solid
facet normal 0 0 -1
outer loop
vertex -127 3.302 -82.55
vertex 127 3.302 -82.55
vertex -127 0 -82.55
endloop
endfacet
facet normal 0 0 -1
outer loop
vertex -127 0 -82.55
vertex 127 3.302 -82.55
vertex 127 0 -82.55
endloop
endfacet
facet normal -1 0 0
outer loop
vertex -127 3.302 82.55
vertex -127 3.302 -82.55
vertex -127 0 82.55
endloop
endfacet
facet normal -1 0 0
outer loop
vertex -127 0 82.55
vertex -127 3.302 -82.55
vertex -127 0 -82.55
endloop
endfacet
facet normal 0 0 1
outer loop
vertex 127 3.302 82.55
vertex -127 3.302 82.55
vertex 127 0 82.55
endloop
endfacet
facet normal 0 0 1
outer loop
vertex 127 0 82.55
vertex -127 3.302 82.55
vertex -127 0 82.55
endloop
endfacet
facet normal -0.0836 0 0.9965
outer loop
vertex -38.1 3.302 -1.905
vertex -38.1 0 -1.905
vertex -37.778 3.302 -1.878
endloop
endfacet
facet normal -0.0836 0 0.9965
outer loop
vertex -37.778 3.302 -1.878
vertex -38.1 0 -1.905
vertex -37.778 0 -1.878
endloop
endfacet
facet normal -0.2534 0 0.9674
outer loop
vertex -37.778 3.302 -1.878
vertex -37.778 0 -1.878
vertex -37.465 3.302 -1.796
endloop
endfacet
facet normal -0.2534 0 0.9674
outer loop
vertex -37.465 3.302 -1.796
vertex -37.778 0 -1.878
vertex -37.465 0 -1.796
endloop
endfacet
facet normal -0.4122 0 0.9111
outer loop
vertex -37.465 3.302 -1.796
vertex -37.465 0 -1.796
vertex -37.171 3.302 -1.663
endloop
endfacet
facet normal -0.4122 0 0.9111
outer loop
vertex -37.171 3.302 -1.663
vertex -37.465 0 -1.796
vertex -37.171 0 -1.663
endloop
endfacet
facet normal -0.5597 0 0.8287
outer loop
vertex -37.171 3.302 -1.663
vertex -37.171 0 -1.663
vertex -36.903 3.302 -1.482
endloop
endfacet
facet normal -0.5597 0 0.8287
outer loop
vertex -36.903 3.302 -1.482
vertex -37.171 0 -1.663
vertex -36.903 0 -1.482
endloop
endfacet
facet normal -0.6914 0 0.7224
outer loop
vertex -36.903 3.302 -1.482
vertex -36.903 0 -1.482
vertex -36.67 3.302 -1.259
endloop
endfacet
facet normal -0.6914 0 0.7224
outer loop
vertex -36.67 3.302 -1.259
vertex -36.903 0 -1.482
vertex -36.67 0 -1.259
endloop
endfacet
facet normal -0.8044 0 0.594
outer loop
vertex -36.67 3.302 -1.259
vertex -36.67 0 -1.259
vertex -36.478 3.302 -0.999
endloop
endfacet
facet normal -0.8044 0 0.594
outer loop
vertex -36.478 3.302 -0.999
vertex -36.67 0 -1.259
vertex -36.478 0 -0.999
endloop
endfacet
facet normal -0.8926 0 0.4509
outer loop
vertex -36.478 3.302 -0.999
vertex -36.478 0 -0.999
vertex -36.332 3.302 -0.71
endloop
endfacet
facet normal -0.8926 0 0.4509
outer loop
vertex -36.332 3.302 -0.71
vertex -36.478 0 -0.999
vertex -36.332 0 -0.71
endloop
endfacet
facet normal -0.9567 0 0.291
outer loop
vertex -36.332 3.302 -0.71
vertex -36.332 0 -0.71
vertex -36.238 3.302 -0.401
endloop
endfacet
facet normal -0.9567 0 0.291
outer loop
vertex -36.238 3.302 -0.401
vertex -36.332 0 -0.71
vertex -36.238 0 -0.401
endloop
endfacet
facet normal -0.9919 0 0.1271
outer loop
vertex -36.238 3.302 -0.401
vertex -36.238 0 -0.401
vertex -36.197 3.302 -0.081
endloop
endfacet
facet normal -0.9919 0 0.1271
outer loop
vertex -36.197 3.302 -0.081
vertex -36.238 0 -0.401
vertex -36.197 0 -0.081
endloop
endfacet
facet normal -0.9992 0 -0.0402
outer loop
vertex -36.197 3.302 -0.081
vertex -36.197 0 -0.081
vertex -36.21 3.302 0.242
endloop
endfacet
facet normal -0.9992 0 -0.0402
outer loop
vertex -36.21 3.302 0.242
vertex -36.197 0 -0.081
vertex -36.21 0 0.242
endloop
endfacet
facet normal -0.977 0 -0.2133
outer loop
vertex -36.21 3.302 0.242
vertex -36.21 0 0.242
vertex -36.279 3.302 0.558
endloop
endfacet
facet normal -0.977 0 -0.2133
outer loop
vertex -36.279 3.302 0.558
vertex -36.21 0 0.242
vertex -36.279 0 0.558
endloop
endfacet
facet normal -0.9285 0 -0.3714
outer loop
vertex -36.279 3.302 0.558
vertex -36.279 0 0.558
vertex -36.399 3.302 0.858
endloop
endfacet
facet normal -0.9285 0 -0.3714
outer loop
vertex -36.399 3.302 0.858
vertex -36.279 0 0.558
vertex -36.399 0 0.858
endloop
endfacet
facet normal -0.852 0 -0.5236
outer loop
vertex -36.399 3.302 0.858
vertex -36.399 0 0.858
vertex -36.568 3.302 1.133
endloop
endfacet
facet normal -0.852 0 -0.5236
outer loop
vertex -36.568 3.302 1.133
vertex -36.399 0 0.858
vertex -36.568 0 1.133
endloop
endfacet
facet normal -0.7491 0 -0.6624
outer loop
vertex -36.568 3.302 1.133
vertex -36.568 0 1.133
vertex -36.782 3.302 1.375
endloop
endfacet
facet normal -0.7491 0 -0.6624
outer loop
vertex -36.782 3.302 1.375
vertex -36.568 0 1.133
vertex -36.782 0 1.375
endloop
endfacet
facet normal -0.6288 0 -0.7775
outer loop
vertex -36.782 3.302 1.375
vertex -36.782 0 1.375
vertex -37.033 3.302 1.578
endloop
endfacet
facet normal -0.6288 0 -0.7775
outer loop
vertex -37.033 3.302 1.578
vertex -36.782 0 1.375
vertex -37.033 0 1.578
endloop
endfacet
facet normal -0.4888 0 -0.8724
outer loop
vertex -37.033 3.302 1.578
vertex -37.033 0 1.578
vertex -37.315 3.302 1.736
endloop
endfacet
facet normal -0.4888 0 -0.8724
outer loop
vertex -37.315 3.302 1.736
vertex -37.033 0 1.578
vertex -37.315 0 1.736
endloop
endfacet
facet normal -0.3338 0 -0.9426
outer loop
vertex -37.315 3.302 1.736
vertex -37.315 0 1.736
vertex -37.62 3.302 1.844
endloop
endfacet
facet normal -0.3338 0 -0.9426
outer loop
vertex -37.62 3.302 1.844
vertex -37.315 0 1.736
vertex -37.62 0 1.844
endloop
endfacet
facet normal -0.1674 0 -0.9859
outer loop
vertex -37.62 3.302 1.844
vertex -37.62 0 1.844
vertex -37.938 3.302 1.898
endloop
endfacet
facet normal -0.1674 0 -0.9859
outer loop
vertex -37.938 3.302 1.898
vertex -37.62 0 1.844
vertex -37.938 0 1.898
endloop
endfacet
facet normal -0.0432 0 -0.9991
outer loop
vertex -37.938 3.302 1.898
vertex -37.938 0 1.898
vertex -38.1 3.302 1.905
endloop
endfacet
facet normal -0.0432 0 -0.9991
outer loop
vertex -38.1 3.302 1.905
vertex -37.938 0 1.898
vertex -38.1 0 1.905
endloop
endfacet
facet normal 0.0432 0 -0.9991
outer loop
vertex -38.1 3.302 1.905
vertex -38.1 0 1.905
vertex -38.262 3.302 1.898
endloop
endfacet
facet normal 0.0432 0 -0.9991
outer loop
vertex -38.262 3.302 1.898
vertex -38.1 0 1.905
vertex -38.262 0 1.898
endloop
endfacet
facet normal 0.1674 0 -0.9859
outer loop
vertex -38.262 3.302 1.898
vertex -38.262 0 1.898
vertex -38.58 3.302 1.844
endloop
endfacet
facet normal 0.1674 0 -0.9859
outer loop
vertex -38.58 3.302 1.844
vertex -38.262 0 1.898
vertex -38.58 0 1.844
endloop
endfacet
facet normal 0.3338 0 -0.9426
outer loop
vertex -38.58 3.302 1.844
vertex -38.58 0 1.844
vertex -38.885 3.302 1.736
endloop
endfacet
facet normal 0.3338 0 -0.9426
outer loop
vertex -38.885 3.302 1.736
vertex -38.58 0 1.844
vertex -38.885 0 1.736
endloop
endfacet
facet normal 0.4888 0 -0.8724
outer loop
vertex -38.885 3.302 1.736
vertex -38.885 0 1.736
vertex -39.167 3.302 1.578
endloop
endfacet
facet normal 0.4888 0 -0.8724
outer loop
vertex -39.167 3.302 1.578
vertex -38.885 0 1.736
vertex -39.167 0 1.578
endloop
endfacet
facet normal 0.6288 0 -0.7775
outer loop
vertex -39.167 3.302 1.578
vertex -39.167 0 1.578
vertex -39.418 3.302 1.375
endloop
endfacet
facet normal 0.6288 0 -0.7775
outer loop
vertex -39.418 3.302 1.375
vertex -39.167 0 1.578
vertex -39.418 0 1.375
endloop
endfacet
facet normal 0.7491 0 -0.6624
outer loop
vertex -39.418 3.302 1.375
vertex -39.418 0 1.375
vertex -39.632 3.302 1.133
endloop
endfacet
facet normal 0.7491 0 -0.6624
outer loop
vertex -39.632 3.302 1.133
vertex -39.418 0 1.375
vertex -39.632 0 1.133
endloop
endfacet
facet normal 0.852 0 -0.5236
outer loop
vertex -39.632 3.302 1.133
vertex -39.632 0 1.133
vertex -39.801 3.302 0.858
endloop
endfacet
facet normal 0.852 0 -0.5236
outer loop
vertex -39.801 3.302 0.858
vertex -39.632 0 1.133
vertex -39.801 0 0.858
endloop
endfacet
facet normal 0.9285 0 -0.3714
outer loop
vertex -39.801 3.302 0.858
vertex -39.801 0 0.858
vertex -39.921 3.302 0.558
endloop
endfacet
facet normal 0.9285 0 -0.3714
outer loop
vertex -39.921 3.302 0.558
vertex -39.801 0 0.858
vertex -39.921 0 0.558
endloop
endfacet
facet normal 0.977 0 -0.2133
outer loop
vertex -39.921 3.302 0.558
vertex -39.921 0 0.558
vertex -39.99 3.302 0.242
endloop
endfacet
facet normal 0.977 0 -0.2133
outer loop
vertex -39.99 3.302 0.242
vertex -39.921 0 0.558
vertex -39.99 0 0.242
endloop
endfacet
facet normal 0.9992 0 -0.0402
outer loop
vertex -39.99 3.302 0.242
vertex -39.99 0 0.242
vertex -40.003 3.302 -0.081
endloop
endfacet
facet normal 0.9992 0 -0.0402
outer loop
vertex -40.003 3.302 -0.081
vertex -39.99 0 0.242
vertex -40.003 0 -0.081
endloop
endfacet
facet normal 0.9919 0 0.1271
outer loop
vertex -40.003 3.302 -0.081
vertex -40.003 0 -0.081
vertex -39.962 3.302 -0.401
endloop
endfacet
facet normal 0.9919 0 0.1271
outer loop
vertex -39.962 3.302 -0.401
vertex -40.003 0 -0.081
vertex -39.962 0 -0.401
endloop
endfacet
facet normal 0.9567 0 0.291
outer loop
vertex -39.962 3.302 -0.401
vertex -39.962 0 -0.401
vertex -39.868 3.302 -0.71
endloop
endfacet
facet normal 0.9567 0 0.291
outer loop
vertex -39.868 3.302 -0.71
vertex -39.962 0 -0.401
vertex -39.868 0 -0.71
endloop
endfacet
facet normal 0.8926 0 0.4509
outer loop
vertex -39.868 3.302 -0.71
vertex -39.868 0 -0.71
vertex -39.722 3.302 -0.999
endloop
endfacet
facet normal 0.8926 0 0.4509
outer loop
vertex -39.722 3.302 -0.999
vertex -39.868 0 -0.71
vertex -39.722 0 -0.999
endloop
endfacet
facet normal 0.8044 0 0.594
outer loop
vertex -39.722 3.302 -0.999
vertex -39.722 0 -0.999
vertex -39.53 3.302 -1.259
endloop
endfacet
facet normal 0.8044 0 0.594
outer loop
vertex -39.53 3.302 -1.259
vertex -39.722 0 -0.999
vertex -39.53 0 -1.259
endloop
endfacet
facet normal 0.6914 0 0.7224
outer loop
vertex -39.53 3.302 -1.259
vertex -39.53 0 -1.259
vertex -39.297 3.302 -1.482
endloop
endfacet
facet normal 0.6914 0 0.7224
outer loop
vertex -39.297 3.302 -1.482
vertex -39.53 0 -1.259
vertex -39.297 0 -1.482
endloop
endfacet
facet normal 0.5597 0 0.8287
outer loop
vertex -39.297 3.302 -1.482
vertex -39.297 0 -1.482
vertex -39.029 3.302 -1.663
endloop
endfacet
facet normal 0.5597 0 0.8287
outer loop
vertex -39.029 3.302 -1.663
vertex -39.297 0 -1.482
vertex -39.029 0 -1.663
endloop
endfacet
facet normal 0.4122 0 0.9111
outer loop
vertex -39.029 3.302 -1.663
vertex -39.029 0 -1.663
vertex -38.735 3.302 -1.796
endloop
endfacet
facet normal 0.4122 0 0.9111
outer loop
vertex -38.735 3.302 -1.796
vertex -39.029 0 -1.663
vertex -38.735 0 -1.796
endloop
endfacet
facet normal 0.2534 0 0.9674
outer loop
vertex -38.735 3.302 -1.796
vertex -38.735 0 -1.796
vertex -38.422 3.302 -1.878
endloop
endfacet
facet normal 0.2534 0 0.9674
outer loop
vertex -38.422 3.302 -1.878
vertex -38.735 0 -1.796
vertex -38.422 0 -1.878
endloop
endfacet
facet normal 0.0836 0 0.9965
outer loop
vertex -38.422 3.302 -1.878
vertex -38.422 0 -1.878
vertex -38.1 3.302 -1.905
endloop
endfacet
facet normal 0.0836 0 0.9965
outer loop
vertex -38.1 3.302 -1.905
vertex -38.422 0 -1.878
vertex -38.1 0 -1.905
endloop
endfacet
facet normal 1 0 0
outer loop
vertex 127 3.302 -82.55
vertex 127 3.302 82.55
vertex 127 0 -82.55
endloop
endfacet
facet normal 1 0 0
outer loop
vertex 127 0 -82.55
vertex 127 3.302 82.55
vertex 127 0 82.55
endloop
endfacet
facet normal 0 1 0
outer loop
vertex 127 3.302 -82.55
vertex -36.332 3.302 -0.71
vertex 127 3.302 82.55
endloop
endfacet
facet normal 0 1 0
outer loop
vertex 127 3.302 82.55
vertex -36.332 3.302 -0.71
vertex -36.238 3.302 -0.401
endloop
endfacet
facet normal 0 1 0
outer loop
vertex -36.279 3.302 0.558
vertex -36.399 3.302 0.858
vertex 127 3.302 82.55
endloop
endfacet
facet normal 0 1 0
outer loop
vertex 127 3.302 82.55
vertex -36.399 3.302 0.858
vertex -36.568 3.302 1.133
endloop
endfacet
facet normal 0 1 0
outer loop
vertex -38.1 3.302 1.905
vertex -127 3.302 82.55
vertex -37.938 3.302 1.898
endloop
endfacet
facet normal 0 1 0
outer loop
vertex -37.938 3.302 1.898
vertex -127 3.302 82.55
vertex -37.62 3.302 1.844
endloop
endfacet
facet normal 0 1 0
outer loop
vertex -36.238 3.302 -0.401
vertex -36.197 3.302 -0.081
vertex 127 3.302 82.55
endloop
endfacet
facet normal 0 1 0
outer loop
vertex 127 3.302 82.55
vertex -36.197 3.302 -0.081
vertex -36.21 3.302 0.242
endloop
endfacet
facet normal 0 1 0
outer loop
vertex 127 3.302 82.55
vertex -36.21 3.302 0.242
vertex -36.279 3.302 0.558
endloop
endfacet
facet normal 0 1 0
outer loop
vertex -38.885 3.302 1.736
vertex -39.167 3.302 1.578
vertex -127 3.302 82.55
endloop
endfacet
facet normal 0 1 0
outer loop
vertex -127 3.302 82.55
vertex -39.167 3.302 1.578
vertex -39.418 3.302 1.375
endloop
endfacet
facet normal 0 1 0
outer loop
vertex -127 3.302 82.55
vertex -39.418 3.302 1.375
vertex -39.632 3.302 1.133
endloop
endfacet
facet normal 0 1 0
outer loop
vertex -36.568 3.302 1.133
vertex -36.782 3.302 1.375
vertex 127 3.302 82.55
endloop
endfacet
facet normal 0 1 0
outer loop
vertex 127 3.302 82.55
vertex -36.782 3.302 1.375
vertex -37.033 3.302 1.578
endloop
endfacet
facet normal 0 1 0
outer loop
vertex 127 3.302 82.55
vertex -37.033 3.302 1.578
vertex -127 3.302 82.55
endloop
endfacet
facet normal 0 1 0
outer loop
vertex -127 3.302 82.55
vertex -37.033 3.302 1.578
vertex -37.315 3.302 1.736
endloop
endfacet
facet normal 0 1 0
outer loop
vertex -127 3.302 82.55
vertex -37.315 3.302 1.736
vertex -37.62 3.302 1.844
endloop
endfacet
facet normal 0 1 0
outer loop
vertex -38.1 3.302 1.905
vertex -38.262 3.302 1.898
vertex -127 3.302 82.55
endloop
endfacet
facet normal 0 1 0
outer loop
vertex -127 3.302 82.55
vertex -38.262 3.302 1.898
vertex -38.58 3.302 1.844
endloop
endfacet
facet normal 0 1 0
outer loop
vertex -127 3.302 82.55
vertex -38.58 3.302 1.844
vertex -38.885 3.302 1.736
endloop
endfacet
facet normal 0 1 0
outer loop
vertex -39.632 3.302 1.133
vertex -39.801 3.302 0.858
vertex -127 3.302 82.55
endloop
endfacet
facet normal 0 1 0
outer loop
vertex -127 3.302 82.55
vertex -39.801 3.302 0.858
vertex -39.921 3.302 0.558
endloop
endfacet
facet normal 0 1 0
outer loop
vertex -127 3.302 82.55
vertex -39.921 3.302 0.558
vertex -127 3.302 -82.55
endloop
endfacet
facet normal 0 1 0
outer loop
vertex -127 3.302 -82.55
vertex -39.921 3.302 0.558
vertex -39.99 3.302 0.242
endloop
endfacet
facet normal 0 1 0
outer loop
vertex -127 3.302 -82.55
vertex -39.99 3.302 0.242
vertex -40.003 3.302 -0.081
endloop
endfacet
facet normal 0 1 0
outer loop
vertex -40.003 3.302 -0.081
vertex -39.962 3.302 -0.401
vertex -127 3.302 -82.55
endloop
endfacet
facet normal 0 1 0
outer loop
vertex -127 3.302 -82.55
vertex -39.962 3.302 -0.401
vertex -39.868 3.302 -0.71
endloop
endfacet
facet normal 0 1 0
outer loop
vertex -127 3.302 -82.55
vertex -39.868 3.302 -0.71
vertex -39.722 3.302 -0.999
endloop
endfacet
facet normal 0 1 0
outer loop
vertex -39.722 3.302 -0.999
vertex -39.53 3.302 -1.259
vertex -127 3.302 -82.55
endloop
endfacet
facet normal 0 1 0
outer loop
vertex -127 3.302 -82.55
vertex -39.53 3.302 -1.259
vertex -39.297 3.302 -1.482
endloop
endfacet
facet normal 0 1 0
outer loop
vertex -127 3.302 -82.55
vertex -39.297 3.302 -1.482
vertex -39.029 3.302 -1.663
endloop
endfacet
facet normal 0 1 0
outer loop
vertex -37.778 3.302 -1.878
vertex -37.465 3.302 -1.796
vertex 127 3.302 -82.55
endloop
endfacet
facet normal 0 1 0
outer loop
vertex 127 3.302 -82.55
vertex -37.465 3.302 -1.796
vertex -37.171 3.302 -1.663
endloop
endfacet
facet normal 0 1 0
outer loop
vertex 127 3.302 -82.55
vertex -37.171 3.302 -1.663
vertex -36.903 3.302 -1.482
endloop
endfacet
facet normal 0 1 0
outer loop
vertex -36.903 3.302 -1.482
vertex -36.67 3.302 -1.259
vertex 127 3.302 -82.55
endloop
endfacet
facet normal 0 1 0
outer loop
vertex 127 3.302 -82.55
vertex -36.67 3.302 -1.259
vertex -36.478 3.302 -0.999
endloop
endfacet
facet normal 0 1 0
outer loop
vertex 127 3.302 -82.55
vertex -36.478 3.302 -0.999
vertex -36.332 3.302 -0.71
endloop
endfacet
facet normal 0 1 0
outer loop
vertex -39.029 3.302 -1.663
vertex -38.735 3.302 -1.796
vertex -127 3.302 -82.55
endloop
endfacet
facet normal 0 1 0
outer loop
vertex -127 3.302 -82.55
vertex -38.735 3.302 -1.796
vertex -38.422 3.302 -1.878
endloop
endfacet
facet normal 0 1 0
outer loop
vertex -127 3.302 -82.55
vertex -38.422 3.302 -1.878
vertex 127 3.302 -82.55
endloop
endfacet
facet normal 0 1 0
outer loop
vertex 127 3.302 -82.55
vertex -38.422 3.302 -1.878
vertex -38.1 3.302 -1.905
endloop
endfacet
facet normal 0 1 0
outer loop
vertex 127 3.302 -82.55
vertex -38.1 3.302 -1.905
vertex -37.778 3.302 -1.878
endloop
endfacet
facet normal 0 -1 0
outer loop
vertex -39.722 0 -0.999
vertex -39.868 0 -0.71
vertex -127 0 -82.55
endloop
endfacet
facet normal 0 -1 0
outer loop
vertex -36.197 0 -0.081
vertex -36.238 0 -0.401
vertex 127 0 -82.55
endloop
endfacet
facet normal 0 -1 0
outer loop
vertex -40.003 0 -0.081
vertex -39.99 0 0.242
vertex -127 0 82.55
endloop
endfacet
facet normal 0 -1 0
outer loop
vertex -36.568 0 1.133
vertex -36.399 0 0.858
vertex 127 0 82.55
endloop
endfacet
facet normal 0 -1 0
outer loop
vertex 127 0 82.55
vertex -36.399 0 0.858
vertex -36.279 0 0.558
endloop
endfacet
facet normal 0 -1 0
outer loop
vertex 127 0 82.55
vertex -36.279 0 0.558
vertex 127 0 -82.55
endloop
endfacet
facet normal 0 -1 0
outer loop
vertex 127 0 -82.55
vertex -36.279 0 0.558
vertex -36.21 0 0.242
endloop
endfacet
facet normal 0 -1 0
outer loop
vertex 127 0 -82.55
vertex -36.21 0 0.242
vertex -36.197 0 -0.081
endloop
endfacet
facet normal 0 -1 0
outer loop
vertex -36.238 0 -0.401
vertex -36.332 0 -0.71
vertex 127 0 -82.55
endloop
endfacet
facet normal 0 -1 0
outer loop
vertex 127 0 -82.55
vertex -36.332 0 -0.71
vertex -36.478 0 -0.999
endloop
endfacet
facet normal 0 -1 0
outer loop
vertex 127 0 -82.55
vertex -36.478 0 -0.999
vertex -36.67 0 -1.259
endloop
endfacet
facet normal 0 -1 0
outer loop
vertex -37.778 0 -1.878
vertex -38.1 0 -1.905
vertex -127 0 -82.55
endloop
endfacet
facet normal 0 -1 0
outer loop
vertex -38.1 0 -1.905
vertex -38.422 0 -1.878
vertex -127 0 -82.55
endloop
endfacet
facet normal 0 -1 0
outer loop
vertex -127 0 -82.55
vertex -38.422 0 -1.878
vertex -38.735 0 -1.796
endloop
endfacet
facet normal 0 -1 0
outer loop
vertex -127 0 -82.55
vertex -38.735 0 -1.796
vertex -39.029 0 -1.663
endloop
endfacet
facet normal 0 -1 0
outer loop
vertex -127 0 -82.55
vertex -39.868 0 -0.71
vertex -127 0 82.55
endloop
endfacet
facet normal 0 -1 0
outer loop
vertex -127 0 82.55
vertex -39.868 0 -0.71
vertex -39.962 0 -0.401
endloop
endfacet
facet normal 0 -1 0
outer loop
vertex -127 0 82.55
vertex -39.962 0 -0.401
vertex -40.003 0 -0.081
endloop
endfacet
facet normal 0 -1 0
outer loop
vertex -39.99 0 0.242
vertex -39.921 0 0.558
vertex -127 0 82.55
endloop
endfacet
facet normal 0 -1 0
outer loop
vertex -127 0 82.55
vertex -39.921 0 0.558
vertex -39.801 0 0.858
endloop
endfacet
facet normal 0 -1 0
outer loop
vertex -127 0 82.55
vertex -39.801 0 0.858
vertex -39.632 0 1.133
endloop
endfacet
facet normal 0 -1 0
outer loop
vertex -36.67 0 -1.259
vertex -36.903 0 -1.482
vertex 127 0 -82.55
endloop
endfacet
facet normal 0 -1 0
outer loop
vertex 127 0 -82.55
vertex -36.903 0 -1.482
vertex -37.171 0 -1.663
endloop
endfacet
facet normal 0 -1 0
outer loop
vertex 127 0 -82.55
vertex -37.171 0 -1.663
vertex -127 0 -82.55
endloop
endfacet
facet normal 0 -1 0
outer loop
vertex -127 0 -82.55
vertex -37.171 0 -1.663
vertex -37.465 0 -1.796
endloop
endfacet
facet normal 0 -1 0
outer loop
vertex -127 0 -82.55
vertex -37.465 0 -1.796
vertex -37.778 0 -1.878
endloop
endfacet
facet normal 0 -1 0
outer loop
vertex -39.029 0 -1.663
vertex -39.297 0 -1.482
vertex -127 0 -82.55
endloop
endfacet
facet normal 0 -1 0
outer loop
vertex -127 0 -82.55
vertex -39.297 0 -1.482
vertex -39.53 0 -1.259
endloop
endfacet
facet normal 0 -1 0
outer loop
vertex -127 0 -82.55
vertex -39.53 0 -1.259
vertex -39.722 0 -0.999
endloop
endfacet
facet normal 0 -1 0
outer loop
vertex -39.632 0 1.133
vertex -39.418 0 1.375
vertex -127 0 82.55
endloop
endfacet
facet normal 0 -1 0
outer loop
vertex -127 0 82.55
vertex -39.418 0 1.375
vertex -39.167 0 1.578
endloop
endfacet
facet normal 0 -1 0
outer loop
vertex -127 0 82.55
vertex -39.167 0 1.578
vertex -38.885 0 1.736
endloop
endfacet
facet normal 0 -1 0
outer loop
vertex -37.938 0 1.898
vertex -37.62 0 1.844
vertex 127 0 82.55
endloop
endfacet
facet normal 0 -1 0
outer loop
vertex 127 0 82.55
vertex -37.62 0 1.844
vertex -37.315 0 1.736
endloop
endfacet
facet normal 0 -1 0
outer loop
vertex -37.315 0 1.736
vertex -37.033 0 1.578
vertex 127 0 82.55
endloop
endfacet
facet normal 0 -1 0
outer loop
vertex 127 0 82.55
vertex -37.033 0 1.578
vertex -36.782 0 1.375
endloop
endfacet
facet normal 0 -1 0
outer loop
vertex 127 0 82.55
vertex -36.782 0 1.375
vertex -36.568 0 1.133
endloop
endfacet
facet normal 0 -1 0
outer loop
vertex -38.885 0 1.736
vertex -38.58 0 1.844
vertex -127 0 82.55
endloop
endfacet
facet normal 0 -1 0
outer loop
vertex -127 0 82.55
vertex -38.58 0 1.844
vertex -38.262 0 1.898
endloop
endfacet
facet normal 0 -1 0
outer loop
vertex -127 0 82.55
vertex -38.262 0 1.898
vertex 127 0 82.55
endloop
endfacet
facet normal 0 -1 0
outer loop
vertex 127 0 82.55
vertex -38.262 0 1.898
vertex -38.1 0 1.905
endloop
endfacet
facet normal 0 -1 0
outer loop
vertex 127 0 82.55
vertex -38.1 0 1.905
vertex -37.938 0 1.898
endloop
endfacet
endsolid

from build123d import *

# Parameters (mm, degrees)
BOSS_EXTRUDE1_DEPTH = 3.302


with BuildPart() as part:
    # Sketch2 → Boss-Extrude1 (new body)
    with BuildSketch(Plane(origin=(0, 0, 0), x_dir=(1, 0, 0), z_dir=(0, 1, 0))):
        with BuildLine():
            Line((-127, 0), (-127, -82.55))
            Line((-127, -82.55), (127, -82.55))
            Line((127, -82.55), (127, 82.55))
            Line((127, 82.55), (-38.1, 82.55))
            Line((-38.1, 82.55), (-38.1, 1.905))
            ThreePointArc((-38.1, 1.905), (-36.752961582, 1.347038418), (-36.195, 0))
            ThreePointArc((-36.195, 0), (-38.1, -1.905), (-40.005, 0))
            Line((-40.005, 0), (-127, 0))
        make_face()
        with BuildLine():
            Line((-127, 82.55), (-127, 0))
            Line((-127, 0), (-40.005, 0))
            ThreePointArc((-40.005, 0), (-39.447038418, 1.347038418), (-38.1, 1.905))
            Line((-38.1, 1.905), (-38.1, 82.55))
            Line((-38.1, 82.55), (-127, 82.55))
        make_face()
    extrude(amount=BOSS_EXTRUDE1_DEPTH)


solid = part.part
